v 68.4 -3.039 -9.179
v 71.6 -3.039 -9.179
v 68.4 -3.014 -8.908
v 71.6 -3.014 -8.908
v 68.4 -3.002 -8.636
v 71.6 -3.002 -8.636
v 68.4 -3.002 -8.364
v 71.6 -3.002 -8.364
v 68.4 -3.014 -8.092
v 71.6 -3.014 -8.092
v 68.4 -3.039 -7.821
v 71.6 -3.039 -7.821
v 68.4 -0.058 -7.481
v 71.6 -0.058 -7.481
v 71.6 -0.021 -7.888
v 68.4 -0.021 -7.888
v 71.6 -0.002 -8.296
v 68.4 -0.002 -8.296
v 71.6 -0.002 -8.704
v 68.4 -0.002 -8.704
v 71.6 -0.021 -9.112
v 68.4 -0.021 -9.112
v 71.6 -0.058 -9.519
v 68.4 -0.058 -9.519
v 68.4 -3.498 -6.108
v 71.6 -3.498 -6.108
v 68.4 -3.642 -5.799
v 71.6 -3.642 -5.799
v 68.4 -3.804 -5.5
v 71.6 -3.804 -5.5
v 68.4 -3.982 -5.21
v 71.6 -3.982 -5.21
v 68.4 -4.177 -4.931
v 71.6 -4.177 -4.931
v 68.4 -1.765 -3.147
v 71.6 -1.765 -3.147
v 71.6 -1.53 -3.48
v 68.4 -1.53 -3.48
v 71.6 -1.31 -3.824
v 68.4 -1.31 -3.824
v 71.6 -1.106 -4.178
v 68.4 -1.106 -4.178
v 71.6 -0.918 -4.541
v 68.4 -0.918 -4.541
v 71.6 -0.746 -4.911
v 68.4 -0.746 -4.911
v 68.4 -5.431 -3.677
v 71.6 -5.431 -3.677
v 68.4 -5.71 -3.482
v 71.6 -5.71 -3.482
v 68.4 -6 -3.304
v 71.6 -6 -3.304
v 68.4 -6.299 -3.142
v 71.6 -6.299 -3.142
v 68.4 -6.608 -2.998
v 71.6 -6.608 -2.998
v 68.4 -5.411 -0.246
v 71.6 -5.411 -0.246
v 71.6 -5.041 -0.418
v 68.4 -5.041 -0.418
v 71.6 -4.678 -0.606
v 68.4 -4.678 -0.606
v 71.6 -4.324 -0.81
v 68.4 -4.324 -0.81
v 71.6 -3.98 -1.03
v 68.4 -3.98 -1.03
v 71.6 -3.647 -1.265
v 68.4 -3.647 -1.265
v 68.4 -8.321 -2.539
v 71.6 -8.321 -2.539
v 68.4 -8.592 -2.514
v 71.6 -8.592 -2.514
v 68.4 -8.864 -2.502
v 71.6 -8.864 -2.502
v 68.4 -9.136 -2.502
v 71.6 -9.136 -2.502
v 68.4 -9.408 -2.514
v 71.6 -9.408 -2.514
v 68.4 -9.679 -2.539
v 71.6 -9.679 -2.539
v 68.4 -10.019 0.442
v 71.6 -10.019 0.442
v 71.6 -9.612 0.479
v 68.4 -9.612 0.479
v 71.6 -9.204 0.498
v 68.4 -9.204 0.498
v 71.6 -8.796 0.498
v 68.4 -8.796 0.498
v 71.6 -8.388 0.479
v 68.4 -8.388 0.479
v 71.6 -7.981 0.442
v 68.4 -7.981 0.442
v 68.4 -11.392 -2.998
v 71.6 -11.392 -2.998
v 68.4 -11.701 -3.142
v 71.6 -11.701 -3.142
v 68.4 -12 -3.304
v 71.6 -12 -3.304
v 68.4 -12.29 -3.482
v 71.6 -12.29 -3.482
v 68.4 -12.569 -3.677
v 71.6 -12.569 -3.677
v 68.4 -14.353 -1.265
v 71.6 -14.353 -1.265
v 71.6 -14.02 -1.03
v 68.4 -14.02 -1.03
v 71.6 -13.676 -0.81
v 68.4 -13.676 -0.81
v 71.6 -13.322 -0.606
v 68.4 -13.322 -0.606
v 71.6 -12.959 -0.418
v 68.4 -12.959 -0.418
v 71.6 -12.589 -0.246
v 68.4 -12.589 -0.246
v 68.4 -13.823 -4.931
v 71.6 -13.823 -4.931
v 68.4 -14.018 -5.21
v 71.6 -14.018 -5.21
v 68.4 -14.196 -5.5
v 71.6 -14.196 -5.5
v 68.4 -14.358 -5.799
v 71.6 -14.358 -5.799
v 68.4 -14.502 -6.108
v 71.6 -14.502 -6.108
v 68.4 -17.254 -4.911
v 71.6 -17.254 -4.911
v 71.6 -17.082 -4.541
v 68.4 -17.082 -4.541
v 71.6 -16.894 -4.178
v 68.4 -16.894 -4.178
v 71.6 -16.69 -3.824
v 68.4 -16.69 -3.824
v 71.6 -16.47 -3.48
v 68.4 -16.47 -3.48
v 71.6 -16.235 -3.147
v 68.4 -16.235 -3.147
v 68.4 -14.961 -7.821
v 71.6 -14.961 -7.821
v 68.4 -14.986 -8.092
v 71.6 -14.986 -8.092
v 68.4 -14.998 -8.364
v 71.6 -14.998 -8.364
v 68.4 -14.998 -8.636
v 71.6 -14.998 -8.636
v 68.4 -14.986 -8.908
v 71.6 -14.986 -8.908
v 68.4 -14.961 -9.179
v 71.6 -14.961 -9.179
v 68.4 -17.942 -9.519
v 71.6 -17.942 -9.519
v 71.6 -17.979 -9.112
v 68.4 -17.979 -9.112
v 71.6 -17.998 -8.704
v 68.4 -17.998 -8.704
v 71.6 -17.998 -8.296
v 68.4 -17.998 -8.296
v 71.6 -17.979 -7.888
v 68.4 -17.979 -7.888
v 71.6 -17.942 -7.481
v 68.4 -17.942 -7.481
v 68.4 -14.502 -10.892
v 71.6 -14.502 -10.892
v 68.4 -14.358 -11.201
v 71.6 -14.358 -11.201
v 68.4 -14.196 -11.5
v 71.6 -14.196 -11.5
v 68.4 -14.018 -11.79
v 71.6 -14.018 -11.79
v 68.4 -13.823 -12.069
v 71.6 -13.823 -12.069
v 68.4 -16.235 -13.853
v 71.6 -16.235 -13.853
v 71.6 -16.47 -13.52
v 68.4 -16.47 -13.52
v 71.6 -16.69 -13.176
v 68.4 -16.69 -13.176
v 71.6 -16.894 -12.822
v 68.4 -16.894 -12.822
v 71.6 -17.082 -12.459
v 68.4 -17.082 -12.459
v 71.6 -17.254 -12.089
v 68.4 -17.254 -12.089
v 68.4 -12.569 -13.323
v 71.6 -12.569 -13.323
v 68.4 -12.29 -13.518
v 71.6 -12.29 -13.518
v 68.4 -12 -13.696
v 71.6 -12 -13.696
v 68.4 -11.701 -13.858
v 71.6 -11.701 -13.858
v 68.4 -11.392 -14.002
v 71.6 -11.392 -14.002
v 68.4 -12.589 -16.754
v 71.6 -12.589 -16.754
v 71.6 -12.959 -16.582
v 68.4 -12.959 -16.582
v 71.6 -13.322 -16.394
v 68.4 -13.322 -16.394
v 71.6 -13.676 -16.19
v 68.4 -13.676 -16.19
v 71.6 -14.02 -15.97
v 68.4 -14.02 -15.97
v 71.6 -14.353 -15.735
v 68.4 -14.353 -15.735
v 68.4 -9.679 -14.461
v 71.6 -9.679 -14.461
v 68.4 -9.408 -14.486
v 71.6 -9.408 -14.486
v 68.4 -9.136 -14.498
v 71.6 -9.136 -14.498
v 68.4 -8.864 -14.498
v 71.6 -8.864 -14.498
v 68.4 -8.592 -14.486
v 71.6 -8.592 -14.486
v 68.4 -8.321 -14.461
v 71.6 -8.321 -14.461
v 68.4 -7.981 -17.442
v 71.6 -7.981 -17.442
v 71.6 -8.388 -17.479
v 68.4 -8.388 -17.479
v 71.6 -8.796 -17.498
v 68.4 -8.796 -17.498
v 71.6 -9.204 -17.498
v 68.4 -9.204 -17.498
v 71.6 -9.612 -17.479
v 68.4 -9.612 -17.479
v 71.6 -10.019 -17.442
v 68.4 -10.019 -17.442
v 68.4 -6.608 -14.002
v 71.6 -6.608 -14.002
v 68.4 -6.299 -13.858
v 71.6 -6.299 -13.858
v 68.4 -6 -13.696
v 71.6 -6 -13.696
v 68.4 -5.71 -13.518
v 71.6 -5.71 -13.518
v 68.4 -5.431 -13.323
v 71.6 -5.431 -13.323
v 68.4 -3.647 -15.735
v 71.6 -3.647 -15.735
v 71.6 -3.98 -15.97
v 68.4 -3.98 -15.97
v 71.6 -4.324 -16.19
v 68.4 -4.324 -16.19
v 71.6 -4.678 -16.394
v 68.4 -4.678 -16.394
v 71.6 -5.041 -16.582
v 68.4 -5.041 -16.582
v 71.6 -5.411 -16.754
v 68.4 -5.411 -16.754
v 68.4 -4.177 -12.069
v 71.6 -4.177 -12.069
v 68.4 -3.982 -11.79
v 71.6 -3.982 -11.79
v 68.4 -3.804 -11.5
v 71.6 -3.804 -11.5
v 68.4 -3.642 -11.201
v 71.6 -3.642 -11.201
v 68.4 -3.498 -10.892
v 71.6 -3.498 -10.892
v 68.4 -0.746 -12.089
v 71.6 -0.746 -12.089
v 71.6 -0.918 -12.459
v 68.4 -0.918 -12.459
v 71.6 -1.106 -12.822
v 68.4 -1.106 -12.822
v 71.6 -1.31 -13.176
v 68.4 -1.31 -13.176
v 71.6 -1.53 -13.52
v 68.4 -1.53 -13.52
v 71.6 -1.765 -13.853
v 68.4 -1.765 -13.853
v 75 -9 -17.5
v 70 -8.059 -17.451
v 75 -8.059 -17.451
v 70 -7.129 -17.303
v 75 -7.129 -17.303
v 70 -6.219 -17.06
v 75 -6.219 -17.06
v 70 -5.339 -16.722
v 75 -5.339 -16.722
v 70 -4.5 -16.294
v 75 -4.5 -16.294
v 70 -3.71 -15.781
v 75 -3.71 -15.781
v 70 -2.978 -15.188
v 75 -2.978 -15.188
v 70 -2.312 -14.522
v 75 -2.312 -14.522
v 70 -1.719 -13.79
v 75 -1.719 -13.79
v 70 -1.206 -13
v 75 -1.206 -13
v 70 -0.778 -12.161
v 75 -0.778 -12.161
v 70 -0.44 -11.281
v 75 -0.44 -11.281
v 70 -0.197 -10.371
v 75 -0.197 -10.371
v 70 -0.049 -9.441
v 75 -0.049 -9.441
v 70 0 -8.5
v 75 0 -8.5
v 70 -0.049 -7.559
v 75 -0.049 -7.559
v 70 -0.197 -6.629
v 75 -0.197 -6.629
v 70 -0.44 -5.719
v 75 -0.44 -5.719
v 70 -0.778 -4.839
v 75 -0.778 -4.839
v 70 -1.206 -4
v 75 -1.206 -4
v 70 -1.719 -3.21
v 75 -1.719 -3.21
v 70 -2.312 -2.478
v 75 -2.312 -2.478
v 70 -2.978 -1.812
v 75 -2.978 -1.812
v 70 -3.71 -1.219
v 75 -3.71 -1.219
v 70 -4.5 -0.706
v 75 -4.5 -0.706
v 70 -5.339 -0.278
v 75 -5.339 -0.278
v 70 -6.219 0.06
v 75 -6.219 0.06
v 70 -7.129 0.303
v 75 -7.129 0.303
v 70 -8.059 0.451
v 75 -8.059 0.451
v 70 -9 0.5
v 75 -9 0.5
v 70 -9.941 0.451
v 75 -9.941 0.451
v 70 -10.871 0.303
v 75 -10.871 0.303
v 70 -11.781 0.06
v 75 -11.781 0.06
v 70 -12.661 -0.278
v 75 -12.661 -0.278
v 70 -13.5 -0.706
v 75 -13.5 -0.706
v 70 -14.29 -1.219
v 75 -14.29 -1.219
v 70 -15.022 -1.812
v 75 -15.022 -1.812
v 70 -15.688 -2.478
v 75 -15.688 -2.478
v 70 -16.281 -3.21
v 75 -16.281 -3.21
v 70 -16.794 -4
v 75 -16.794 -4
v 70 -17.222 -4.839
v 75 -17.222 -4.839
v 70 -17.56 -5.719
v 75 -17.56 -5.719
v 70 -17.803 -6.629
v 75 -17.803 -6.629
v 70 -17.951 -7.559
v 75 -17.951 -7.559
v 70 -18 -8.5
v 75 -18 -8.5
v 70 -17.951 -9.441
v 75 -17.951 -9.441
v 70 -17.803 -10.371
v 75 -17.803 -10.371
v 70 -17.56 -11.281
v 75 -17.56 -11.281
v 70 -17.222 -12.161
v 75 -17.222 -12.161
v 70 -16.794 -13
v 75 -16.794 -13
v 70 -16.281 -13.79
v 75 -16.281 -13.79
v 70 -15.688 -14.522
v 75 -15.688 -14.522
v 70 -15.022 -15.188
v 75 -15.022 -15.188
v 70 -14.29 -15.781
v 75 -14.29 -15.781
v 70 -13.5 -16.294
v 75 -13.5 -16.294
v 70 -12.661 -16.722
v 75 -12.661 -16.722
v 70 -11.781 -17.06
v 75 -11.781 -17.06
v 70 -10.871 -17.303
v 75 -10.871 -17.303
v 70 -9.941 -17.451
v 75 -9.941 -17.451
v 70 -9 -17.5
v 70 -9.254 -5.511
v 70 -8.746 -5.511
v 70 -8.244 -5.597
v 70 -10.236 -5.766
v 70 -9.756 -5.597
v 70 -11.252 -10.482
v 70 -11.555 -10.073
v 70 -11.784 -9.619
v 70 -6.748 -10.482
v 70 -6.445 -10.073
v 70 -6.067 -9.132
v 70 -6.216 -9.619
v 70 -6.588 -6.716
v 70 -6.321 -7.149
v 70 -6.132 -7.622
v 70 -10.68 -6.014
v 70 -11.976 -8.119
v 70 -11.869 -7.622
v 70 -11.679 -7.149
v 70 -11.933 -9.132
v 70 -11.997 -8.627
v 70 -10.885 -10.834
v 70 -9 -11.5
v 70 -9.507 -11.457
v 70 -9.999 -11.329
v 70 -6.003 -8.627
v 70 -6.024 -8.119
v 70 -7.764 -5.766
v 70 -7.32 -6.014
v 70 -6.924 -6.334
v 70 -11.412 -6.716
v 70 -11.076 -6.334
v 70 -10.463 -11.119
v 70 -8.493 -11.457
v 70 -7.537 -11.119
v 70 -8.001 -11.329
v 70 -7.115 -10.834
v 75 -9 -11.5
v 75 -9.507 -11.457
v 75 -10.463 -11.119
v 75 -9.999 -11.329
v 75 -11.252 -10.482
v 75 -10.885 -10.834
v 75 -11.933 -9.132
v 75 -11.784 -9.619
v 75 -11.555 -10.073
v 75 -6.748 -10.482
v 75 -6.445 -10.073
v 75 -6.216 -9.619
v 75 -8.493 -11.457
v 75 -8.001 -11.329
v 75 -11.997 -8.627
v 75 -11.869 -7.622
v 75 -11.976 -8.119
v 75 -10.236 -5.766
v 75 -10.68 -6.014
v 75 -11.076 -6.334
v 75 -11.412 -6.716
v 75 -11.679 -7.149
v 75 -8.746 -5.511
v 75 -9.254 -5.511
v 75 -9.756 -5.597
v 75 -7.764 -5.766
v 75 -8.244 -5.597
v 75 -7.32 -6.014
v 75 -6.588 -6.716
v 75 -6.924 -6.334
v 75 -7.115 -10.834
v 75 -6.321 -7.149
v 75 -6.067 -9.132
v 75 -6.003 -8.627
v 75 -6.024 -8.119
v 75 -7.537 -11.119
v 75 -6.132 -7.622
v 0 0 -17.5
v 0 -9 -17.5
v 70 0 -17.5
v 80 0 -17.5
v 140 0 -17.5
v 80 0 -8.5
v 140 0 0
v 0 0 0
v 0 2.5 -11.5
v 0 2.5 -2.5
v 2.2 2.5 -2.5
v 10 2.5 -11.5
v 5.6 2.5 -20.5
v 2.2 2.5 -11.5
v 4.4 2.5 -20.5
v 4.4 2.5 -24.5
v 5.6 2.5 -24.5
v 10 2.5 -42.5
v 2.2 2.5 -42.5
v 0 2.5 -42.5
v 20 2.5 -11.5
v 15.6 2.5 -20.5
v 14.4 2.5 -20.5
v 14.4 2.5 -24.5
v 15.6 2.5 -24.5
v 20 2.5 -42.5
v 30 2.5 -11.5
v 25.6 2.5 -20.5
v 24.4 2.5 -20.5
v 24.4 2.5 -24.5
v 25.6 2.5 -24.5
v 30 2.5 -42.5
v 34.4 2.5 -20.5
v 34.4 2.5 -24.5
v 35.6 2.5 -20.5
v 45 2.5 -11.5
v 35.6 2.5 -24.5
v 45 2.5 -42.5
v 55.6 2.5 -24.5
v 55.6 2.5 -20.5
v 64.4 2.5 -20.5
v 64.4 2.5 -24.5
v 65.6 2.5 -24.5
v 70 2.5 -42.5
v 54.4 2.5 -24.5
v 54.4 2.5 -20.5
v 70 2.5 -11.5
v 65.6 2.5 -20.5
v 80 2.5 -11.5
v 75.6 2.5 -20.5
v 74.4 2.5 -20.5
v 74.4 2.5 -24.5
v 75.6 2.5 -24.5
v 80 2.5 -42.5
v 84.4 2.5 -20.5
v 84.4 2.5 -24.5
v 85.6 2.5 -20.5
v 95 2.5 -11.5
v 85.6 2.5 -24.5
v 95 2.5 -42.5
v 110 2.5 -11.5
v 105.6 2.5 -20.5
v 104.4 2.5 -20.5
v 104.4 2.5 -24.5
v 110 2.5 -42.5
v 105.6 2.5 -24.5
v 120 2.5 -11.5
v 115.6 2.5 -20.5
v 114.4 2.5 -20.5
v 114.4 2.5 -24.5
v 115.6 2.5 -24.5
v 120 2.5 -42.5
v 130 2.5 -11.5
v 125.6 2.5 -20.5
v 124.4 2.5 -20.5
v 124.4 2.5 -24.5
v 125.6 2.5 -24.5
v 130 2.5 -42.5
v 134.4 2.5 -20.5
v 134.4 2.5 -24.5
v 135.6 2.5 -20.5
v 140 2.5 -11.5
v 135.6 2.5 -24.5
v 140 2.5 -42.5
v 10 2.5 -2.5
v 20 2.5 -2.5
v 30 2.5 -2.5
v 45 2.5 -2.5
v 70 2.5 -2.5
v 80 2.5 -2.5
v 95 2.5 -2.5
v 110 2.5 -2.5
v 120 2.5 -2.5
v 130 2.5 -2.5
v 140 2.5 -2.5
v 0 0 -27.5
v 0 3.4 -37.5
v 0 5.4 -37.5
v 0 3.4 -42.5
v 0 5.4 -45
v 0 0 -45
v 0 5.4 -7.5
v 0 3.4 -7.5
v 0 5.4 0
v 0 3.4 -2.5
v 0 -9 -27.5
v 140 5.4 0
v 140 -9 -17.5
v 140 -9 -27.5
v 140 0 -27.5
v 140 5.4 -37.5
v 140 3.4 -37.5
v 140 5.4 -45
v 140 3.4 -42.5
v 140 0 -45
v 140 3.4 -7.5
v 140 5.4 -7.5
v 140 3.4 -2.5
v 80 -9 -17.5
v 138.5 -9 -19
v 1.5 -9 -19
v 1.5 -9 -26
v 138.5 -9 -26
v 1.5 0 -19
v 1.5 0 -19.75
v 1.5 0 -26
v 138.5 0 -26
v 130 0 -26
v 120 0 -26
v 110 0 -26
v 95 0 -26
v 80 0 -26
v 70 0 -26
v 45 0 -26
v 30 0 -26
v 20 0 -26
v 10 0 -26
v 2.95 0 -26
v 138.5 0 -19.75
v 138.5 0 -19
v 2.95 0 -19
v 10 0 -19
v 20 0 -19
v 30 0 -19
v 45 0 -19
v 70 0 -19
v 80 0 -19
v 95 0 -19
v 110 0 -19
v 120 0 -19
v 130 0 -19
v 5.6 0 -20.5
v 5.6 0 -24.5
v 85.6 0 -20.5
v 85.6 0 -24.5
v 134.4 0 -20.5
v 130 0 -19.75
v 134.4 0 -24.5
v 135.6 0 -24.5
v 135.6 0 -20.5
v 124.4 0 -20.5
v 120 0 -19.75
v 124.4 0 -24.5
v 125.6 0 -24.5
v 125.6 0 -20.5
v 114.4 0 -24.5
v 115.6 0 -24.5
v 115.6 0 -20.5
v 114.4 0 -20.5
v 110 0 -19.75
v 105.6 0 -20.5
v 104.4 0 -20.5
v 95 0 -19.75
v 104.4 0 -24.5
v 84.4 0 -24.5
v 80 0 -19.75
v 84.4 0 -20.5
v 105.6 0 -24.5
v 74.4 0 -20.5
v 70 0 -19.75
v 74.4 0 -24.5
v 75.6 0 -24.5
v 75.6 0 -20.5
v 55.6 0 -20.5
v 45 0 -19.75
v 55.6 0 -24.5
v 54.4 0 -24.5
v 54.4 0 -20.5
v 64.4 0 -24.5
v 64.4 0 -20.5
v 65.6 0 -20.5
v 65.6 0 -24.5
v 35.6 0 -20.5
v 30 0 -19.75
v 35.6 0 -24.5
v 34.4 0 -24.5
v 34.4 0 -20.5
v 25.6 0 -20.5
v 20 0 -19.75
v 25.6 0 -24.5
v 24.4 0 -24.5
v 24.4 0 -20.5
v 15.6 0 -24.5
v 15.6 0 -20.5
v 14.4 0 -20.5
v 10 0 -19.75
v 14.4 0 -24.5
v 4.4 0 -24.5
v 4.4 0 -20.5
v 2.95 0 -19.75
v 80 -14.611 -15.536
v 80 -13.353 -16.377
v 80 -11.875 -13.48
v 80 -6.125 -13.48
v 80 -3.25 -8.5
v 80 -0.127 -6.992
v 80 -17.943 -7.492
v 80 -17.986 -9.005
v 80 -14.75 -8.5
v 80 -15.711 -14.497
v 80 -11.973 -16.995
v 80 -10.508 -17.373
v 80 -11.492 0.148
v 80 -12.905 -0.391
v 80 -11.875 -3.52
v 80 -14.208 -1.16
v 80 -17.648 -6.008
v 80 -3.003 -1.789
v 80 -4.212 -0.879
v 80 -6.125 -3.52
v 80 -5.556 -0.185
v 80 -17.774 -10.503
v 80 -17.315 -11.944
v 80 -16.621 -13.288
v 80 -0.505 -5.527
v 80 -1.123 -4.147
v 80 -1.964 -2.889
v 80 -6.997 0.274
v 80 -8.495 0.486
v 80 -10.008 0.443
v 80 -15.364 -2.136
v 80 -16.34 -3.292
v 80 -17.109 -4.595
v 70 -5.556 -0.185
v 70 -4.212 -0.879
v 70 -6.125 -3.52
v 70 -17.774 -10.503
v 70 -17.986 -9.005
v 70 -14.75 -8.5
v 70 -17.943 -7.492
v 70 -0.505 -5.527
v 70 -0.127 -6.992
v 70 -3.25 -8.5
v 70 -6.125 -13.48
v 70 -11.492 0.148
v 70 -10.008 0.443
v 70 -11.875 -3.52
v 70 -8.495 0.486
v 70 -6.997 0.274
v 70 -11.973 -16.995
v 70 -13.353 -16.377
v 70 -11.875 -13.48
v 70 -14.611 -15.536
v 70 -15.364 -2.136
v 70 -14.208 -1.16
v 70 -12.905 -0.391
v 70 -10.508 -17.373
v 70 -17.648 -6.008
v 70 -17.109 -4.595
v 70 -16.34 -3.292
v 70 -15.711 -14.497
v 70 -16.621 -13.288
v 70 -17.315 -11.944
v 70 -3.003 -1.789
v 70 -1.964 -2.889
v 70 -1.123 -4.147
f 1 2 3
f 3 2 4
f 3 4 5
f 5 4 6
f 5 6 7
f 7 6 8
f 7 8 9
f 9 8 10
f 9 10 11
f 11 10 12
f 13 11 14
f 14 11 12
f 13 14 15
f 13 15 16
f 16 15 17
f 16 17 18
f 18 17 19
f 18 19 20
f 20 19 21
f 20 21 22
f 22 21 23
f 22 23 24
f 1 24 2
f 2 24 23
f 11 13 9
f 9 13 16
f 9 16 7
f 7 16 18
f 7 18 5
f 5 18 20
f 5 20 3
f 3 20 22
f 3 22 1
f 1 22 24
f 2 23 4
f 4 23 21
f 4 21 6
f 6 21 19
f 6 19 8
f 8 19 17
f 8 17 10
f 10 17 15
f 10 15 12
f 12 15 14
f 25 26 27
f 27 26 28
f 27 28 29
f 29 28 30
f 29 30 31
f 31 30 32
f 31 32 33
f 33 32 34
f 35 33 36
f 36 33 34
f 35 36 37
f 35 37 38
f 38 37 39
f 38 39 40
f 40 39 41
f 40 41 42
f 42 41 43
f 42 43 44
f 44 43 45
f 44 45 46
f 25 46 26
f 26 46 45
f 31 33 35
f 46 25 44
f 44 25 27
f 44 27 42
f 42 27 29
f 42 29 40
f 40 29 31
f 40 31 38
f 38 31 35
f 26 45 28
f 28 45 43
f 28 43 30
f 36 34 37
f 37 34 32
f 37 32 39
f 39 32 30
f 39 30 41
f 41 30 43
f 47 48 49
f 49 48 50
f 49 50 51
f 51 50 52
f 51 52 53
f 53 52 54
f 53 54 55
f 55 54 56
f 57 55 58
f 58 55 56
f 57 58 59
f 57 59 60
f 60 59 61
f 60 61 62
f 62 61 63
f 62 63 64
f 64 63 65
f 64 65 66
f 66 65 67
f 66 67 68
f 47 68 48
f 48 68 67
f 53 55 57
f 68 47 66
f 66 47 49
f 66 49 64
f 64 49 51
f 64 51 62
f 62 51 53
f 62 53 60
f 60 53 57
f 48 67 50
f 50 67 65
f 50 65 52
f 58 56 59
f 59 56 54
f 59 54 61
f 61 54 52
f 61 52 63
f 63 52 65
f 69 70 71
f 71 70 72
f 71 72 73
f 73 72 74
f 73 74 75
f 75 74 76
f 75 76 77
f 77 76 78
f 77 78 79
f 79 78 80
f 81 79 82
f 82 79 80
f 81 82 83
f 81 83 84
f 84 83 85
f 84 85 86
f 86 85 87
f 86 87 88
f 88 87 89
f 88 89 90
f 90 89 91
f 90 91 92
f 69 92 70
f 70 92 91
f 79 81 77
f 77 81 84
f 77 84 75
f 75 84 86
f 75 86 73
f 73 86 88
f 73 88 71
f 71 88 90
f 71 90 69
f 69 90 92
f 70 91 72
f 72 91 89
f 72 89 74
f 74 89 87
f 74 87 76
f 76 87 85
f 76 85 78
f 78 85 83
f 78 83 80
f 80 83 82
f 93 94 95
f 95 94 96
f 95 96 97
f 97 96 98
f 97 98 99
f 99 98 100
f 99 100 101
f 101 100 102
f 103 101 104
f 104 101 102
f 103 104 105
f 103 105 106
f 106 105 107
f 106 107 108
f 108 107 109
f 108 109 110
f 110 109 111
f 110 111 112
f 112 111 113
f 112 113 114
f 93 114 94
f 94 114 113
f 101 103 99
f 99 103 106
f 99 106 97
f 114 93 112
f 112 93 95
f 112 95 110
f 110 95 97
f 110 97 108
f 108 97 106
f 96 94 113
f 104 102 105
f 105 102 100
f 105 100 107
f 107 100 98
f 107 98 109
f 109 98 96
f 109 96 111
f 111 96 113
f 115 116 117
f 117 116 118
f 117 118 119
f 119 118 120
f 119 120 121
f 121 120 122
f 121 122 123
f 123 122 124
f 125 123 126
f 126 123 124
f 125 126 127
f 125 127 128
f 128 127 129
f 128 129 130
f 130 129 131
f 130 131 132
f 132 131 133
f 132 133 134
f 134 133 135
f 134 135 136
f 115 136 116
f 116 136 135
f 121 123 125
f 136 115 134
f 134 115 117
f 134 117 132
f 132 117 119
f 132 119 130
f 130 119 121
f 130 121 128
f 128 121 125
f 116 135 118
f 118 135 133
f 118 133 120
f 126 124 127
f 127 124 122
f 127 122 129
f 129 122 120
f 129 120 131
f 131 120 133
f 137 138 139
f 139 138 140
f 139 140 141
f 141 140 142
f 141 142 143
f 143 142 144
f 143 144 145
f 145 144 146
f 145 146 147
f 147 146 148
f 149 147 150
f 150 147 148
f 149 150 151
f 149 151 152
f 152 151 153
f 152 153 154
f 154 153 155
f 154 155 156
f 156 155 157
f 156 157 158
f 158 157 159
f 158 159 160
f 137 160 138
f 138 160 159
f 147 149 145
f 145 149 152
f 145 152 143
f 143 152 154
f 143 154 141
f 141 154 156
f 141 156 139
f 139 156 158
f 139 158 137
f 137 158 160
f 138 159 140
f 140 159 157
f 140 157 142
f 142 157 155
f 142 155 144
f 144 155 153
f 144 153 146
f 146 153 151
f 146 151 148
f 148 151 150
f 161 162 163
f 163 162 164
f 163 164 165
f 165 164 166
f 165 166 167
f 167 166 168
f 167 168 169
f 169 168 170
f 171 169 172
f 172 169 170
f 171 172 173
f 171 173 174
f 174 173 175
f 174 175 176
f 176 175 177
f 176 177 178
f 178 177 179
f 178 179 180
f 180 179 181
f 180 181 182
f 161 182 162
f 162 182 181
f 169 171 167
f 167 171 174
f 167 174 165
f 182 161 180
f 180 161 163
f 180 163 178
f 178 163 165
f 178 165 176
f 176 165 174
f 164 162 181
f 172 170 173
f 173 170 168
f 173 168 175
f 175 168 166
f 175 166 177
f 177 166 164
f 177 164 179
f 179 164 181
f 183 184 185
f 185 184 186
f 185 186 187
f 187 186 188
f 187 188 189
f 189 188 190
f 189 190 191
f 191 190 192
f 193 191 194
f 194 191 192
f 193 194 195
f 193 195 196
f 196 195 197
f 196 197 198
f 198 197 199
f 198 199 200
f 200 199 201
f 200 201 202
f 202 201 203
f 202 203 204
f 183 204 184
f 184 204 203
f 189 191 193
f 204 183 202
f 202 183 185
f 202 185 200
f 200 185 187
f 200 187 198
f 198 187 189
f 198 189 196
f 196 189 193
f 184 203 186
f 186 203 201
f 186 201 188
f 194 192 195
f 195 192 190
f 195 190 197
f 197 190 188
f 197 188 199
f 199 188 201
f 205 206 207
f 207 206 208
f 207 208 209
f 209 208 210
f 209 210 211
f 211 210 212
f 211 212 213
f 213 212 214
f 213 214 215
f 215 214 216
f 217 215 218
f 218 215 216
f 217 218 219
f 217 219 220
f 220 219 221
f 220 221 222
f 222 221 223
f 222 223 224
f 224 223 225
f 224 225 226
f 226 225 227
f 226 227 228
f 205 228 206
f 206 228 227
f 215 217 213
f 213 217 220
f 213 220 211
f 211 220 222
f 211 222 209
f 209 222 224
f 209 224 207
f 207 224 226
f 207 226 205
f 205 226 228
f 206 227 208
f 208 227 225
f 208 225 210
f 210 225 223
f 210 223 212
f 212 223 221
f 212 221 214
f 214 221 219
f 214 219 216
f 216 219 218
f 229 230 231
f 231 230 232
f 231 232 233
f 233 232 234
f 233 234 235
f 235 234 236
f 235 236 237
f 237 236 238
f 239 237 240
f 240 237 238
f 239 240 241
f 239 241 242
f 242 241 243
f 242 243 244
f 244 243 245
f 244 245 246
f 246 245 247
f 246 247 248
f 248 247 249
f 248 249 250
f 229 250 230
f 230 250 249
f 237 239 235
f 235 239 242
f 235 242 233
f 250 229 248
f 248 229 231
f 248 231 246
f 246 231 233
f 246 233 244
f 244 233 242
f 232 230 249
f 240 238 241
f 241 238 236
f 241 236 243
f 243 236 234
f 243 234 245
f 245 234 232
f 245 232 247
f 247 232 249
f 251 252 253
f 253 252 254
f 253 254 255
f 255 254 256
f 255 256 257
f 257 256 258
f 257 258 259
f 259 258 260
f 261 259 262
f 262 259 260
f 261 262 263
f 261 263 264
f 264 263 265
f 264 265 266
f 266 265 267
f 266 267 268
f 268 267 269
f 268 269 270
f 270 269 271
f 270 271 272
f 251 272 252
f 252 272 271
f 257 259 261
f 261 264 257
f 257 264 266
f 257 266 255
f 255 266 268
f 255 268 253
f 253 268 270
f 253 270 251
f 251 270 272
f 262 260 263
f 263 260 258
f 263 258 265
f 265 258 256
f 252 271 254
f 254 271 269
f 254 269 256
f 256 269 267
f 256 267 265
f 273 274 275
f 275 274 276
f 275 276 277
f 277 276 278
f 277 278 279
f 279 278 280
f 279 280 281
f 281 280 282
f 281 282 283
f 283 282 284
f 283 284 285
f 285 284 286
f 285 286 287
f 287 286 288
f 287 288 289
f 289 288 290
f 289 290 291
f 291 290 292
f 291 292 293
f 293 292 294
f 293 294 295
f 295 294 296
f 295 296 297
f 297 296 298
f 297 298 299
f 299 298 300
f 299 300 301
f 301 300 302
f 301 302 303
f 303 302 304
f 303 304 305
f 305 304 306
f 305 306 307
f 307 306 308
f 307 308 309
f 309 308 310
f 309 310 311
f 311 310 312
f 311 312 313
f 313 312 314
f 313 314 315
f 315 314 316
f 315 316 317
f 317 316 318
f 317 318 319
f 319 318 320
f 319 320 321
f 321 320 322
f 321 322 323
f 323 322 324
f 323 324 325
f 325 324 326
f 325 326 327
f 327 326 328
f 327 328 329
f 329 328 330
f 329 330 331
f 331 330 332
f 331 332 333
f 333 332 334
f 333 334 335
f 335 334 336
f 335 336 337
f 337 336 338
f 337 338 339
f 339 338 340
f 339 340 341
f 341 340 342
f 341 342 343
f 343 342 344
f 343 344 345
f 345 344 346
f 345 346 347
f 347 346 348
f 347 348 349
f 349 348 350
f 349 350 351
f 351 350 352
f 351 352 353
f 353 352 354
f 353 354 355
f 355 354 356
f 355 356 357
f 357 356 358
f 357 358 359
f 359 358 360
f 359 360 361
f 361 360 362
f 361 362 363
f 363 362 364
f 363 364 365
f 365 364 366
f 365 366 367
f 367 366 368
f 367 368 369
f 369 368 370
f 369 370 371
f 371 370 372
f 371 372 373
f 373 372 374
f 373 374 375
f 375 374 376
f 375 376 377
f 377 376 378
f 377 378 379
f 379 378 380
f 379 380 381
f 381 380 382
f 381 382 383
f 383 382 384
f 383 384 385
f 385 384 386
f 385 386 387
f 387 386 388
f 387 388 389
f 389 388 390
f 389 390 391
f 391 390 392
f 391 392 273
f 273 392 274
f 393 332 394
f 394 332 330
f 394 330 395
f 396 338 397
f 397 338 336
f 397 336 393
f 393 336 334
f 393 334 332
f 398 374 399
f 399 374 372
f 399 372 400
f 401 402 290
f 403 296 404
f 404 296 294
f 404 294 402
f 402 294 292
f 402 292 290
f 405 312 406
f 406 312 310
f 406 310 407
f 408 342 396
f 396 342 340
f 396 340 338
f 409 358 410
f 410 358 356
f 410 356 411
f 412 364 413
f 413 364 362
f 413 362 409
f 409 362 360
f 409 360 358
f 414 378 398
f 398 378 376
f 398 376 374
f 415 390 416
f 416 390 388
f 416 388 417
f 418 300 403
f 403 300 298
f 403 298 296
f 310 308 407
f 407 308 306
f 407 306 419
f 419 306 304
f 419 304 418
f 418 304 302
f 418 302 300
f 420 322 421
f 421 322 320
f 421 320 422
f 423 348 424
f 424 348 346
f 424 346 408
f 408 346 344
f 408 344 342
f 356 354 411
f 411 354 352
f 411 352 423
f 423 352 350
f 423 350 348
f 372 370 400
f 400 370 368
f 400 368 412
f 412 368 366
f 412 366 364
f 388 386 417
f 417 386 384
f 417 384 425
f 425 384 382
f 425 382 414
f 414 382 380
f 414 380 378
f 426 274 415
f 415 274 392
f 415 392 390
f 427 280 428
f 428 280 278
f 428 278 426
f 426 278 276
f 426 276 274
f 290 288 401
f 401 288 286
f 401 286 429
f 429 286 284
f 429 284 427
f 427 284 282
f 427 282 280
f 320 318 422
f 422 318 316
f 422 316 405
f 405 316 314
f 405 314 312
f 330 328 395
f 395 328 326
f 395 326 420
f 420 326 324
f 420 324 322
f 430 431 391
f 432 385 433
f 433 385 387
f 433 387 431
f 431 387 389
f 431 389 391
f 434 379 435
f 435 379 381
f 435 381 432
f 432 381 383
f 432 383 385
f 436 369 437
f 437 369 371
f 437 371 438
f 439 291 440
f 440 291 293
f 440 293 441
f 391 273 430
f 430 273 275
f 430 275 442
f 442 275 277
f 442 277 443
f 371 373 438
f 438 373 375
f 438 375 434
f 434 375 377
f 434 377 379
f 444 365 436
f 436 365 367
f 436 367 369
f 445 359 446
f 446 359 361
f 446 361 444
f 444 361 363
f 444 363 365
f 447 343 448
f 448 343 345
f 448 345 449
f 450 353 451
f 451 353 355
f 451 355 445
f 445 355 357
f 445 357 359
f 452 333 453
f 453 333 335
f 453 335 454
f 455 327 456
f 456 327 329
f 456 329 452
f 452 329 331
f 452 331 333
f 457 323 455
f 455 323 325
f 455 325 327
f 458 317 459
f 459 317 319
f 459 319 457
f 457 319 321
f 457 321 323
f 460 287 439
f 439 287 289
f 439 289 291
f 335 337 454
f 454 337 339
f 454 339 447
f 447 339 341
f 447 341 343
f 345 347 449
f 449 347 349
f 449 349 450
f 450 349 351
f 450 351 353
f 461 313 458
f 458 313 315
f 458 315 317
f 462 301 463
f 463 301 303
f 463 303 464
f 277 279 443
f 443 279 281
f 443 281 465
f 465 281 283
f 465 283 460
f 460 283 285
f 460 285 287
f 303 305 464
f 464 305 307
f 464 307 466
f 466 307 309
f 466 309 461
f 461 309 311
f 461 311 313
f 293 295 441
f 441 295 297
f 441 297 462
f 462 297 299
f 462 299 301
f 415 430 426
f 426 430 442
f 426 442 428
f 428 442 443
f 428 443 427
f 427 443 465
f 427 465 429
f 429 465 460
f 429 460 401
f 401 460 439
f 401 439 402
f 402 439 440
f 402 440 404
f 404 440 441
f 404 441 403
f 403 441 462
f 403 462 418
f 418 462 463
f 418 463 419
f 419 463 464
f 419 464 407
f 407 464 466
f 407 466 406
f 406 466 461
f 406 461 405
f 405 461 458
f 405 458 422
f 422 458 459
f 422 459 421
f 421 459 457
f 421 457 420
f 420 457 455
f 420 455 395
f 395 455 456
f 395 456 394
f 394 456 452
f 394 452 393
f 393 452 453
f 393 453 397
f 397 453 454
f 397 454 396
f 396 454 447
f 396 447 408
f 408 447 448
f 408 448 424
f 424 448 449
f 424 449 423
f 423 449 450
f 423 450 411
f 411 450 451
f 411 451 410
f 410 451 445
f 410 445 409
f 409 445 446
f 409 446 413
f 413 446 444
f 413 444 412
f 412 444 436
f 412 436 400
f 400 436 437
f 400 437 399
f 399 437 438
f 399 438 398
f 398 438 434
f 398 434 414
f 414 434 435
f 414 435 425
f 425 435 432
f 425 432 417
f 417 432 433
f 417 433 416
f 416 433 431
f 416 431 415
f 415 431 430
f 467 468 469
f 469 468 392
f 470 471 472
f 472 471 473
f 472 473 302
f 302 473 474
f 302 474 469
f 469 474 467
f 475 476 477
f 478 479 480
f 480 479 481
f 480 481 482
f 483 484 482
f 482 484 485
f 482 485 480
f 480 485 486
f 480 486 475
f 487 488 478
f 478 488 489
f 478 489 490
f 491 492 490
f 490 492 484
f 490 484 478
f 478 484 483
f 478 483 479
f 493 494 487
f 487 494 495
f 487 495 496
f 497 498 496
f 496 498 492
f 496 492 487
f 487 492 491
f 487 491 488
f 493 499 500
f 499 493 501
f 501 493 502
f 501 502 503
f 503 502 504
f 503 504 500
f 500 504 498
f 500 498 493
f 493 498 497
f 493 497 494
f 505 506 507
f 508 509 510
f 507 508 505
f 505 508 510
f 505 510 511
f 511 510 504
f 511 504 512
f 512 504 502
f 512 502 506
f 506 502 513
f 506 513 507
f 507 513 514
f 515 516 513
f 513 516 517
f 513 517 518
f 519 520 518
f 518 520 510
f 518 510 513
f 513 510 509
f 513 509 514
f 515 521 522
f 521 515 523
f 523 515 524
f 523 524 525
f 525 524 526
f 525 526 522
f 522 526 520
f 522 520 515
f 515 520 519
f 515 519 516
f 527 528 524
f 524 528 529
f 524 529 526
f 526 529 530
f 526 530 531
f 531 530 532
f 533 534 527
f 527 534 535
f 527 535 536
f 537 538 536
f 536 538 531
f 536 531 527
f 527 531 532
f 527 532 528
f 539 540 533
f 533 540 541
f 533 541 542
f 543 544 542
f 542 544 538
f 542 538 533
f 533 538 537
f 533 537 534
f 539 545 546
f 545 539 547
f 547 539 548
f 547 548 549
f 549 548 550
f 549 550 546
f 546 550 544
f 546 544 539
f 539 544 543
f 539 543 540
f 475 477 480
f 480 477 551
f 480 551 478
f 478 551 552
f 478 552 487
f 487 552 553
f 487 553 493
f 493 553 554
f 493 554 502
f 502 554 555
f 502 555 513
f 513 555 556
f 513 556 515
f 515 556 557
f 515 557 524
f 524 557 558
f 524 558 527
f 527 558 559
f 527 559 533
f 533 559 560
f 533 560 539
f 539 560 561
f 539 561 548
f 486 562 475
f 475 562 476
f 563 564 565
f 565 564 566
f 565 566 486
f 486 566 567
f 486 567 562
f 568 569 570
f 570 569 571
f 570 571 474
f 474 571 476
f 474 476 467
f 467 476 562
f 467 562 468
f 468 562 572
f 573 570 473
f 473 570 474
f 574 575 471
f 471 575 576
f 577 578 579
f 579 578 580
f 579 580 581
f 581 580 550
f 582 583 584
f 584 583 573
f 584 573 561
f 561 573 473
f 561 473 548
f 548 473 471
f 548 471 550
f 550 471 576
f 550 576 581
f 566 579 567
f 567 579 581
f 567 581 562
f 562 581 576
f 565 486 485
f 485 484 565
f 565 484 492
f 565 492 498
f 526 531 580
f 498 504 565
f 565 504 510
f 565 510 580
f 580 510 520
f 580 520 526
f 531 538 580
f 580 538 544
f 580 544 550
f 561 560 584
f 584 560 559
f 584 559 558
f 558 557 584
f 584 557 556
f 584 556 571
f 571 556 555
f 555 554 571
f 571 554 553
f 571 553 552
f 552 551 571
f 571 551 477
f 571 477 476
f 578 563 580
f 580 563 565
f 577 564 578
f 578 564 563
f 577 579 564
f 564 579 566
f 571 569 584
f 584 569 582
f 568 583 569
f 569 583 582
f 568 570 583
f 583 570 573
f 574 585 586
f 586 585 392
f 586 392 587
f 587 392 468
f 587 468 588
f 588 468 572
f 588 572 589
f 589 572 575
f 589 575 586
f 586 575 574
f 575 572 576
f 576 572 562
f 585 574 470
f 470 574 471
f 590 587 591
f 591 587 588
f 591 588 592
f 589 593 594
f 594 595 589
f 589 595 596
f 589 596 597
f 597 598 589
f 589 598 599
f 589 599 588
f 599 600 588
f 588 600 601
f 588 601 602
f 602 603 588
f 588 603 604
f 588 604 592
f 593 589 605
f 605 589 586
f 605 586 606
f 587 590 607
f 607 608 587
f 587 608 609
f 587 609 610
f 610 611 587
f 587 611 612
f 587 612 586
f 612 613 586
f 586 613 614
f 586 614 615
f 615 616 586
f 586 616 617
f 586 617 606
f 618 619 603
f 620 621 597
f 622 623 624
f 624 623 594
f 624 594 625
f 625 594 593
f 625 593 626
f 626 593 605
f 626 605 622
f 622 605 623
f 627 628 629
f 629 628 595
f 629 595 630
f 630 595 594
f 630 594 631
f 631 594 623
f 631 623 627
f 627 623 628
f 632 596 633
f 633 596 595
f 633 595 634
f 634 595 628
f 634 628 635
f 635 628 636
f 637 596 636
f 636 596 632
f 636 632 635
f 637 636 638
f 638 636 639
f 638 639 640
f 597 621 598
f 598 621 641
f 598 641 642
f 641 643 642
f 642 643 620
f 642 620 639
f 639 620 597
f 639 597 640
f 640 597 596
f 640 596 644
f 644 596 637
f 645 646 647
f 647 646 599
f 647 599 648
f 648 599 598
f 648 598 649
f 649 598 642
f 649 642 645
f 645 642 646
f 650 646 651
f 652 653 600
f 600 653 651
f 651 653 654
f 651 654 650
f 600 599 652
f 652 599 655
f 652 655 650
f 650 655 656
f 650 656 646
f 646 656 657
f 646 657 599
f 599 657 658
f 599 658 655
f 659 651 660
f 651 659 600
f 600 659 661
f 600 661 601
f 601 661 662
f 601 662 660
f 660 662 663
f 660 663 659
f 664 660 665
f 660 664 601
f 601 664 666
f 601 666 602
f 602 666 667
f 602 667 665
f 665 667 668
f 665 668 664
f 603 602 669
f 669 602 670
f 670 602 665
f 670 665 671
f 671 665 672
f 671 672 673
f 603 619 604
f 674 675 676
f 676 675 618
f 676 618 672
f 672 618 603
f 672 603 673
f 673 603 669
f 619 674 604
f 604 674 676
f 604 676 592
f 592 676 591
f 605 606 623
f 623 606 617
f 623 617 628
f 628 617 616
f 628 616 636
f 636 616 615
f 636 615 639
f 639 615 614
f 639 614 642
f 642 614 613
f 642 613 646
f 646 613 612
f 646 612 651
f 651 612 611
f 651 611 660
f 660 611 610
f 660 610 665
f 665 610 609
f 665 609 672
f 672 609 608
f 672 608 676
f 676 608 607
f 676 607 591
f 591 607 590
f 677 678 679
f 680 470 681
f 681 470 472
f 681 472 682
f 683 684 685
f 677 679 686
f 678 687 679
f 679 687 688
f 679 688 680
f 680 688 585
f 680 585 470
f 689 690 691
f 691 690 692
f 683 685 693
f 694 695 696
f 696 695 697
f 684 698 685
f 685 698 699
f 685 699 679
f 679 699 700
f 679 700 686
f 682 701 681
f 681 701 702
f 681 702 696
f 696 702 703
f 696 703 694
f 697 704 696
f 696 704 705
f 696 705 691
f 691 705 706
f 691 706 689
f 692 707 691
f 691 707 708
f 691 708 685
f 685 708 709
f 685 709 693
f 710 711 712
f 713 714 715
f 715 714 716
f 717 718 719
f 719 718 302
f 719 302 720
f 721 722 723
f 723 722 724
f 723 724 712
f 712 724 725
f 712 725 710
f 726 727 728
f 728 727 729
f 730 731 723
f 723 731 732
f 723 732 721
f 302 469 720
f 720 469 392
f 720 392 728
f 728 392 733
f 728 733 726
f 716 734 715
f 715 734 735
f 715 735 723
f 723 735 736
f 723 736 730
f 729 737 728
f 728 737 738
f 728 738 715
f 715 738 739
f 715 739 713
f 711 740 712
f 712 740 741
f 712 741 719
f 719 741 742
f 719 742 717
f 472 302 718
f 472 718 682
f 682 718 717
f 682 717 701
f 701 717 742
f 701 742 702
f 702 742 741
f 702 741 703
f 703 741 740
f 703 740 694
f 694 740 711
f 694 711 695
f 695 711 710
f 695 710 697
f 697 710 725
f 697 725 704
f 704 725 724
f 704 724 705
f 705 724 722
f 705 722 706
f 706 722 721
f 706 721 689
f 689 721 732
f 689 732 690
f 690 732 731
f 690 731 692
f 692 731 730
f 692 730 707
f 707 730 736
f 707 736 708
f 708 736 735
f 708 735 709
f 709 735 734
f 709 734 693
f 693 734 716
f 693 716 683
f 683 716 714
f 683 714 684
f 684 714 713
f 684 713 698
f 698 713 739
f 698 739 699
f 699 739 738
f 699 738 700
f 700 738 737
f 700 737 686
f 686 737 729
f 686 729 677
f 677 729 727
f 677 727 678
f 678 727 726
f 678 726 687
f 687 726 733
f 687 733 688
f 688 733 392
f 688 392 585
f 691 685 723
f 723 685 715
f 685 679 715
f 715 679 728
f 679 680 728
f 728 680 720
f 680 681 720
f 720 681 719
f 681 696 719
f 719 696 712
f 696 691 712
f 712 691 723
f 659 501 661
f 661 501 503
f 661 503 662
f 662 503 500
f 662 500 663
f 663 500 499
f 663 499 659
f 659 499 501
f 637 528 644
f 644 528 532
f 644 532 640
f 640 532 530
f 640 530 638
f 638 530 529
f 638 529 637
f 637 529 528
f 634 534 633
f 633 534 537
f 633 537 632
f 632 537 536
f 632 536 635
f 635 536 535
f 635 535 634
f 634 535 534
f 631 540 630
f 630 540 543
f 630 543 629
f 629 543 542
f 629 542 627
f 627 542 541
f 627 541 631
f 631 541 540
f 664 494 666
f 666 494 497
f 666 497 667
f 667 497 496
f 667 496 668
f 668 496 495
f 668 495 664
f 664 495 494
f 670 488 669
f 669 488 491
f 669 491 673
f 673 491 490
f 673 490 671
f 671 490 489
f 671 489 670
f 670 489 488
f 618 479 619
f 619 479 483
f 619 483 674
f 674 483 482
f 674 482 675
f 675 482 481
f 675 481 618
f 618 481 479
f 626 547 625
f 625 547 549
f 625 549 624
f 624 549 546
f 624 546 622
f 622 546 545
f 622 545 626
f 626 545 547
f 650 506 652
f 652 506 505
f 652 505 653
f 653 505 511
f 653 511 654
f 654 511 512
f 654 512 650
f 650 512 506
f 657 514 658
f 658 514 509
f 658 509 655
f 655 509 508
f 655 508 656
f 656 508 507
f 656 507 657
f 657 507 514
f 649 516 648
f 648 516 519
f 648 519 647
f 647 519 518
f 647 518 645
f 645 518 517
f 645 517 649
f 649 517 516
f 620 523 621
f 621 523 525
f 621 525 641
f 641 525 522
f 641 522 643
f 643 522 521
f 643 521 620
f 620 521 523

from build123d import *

# Parameters (mm, degrees)
CROQUIS1_W                  = 140
CROQUIS1_H                  = 45
SALIENTE_EXTRUIR1_DEPTH     = 2.5
CROQUIS2_W                  = 140
CROQUIS2_H                  = 2.5
SALIENTE_EXTRUIR2_DEPTH     = 0.9
CROQUIS3_W                  = 140
CROQUIS3_H                  = 7.5
SALIENTE_EXTRUIR3_DEPTH     = 2
CROQUIS4_W                  = 140
CROQUIS4_H                  = 10
CROQUIS4_W_2                = 137
CROQUIS4_H_2                = 7
SALIENTE_EXTRUIR4_DEPTH     = 9
SALIENTE_EXTRUIR5_DEPTH     = 10
SALIENTE_EXTRUIR20_DEPTH    = 1.6
SALIENTE_EXTRUIR20_2_DEPTH  = 1.6
SALIENTE_EXTRUIR20_3_DEPTH  = 1.6
SALIENTE_EXTRUIR20_4_DEPTH  = 1.6
SALIENTE_EXTRUIR20_5_DEPTH  = 1.6
SALIENTE_EXTRUIR20_6_DEPTH  = 1.6
SALIENTE_EXTRUIR20_7_DEPTH  = 1.6
SALIENTE_EXTRUIR20_8_DEPTH  = 1.6
SALIENTE_EXTRUIR20_9_DEPTH  = 1.6
SALIENTE_EXTRUIR20_10_DEPTH = 1.6
SALIENTE_EXTRUIR20_11_DEPTH = 1.6
SALIENTE_EXTRUIR20_12_DEPTH = 1.6
CROQUIS9_R                  = 9
CROQUIS9_R_2                = 3
SALIENTE_EXTRUIR24_DEPTH    = 5
CROQUIS10_W                 = 1.2
CROQUIS10_H                 = 4
CORTAR_EXTRUIR1_DEPTH       = 10
CROQUIS12_W                 = 1.2
CROQUIS12_H                 = 4
CORTAR_EXTRUIR2_DEPTH       = 10


with BuildPart() as part:
    # Croquis1 → Saliente-Extruir1 (new body)
    with BuildSketch(Plane(origin=(0, 0, 0), x_dir=(1, 0, 0), z_dir=(0, 1, 0))):
        with Locations((70, 22.5)):
            Rectangle(CROQUIS1_W, CROQUIS1_H)
    extrude(amount=SALIENTE_EXTRUIR1_DEPTH)

    # Croquis2 → Saliente-Extruir2 (add)
    with BuildSketch(Plane(origin=(0, 2.5, 0), x_dir=(1, 0, 0), z_dir=(0, 1, 0))):
        with Locations((70, 43.75)):
            Rectangle(CROQUIS2_W, CROQUIS2_H)
        with Locations((70, 1.25)):
            Rectangle(CROQUIS2_W, CROQUIS2_H)
    extrude(amount=SALIENTE_EXTRUIR2_DEPTH)

    # Croquis3 → Saliente-Extruir3 (add)
    with BuildSketch(Plane(origin=(0, 3.4, 0), x_dir=(1, 0, 0), z_dir=(0, 1, 0))):
        with Locations((70, 41.25)):
            Rectangle(CROQUIS3_W, CROQUIS3_H)
        with Locations((70, 3.75)):
            Rectangle(CROQUIS3_W, CROQUIS3_H)
    extrude(amount=SALIENTE_EXTRUIR3_DEPTH)

    # Croquis4 → Saliente-Extruir4 (add)
    with BuildSketch(Plane.XZ):
        with Locations((70, -22.5)):
            Rectangle(CROQUIS4_W, CROQUIS4_H)
        with Locations((70, -22.5)):
            Rectangle(CROQUIS4_W_2, CROQUIS4_H_2, mode=Mode.SUBTRACT)
    extrude(amount=SALIENTE_EXTRUIR4_DEPTH)

    # Croquis6 → Saliente-Extruir5 (add)
    with BuildSketch(Plane(origin=(70, 0, 0), x_dir=(0, 0, -1), z_dir=(1, 0, 0))):
        with BuildLine():
            Line((17.5, -9), (18.5, -9))
            Line((18.5, -9), (18.5, 1))
            Line((18.5, 1), (8.5, 1))
            Line((8.5, 1), (8.5, 0))
            ThreePointArc((8.5, 0), (2.136038969, -15.363961031), (17.5, -9))
        make_face()
        Polygon((8.5, -14.75), (13.479646072, -11.875), (13.479646072, -6.125), (8.5, -3.25), (3.520353928, -6.125), (3.520353928, -11.875), align=None, mode=Mode.SUBTRACT)
    extrude(amount=SALIENTE_EXTRUIR5_DEPTH)

    # Croquis10 → Cortar-Extruir1 (cut)
    with BuildSketch(Plane.XZ):
        with Locations((35, -22.5)):
            Rectangle(CROQUIS10_W, CROQUIS10_H)
        with Locations((25, -22.5)):
            Rectangle(CROQUIS10_W, CROQUIS10_H)
        with Locations((15, -22.5)):
            Rectangle(CROQUIS10_W, CROQUIS10_H)
        with Locations((5, -22.5)):
            Rectangle(CROQUIS10_W, CROQUIS10_H)
        with Locations((135, -22.5)):
            Rectangle(CROQUIS10_W, CROQUIS10_H)
        with Locations((125, -22.5)):
            Rectangle(CROQUIS10_W, CROQUIS10_H)
        with Locations((115, -22.5)):
            Rectangle(CROQUIS10_W, CROQUIS10_H)
        with Locations((105, -22.5)):
            Rectangle(CROQUIS10_W, CROQUIS10_H)
    extrude(amount=-CORTAR_EXTRUIR1_DEPTH, mode=Mode.SUBTRACT)

    # Croquis12 → Cortar-Extruir2 (cut)
    with BuildSketch(Plane.XZ):
        with Locations((85, -22.5)):
            Rectangle(CROQUIS12_W, CROQUIS12_H)
        with Locations((75, -22.5)):
            Rectangle(CROQUIS12_W, CROQUIS12_H)
        with Locations((65, -22.5)):
            Rectangle(CROQUIS12_W, CROQUIS12_H)
        with Locations((55, -22.5)):
            Rectangle(CROQUIS12_W, CROQUIS12_H)
    extrude(amount=-CORTAR_EXTRUIR2_DEPTH, mode=Mode.SUBTRACT)


with BuildPart() as body_2:
    # Croquis7 → Saliente-Extruir20 (new, symmetric)
    with BuildSketch(Plane.ZY.offset(-70)):
        with BuildLine():
            Line((-9.179219283, -3.038568866), (-9.518828924, -0.057853299))
            ThreePointArc((-9.518828924, -0.057853299), (-8.5, 0), (-7.481171076, -0.057853299))
            Line((-7.481171076, -0.057853299), (-7.820780717, -3.038568866))
            ThreePointArc((-7.820780717, -3.038568866), (-8.5, -3), (-9.179219283, -3.038568866))
        make_face()
    extrude(amount=SALIENTE_EXTRUIR20_DEPTH, both=True)


with BuildPart() as body_3:
    # Croquis7 → Saliente-Extruir20 2 (new, symmetric)
    with BuildSketch(Plane.ZY.offset(-70)):
        with BuildLine():
            Line((-4.931063279, -4.176858836), (-3.146594919, -1.765288254))
            ThreePointArc((-3.146594919, -1.765288254), (-4, -1.205771366), (-4.91125838, -0.746459331))
            Line((-4.91125838, -0.746459331), (-6.107505586, -3.497639554))
            ThreePointArc((-6.107505586, -3.497639554), (-5.5, -3.803847577), (-4.931063279, -4.176858836))
        make_face()
    extrude(amount=SALIENTE_EXTRUIR20_2_DEPTH, both=True)


with BuildPart() as body_4:
    # Croquis7 → Saliente-Extruir20 3 (new, symmetric)
    with BuildSketch(Plane.ZY.offset(-70)):
        with BuildLine():
            Line((-2.997639554, -6.607505586), (-0.246459331, -5.41125838))
            ThreePointArc((-0.246459331, -5.41125838), (-0.705771366, -4.5), (-1.265288254, -3.646594919))
            Line((-1.265288254, -3.646594919), (-3.676858836, -5.431063279))
            ThreePointArc((-3.676858836, -5.431063279), (-3.303847577, -6), (-2.997639554, -6.607505586))
        make_face()
    extrude(amount=SALIENTE_EXTRUIR20_3_DEPTH, both=True)


with BuildPart() as body_5:
    # Croquis7 → Saliente-Extruir20 4 (new, symmetric)
    with BuildSketch(Plane.ZY.offset(-70)):
        with BuildLine():
            Line((-2.538568866, -9.679219283), (0.442146701, -10.018828924))
            ThreePointArc((0.442146701, -10.018828924), (0.5, -9), (0.442146701, -7.981171076))
            Line((0.442146701, -7.981171076), (-2.538568866, -8.320780717))
            ThreePointArc((-2.538568866, -8.320780717), (-2.5, -9), (-2.538568866, -9.679219283))
        make_face()
    extrude(amount=SALIENTE_EXTRUIR20_4_DEPTH, both=True)


with BuildPart() as body_6:
    # Croquis7 → Saliente-Extruir20 5 (new, symmetric)
    with BuildSketch(Plane.ZY.offset(-70)):
        with BuildLine():
            Line((-3.676858836, -12.568936721), (-1.265288254, -14.353405081))
            ThreePointArc((-1.265288254, -14.353405081), (-0.705771366, -13.5), (-0.246459331, -12.58874162))
            Line((-0.246459331, -12.58874162), (-2.997639554, -11.392494414))
            ThreePointArc((-2.997639554, -11.392494414), (-3.303847577, -12), (-3.676858836, -12.568936721))
        make_face()
    extrude(amount=SALIENTE_EXTRUIR20_5_DEPTH, both=True)


with BuildPart() as body_7:
    # Croquis7 → Saliente-Extruir20 6 (new, symmetric)
    with BuildSketch(Plane.ZY.offset(-70)):
        with BuildLine():
            Line((-6.107505586, -14.502360446), (-4.91125838, -17.253540669))
            ThreePointArc((-4.91125838, -17.253540669), (-4, -16.794228634), (-3.146594919, -16.234711746))
            Line((-3.146594919, -16.234711746), (-4.931063279, -13.823141164))
            ThreePointArc((-4.931063279, -13.823141164), (-5.5, -14.196152423), (-6.107505586, -14.502360446))
        make_face()
    extrude(amount=SALIENTE_EXTRUIR20_6_DEPTH, both=True)


with BuildPart() as body_8:
    # Croquis7 → Saliente-Extruir20 7 (new, symmetric)
    with BuildSketch(Plane.ZY.offset(-70)):
        with BuildLine():
            Line((-9.179219283, -14.961431134), (-9.518828924, -17.942146701))
            ThreePointArc((-9.518828924, -17.942146701), (-8.5, -18), (-7.481171076, -17.942146701))
            Line((-7.481171076, -17.942146701), (-7.820780717, -14.961431134))
            ThreePointArc((-7.820780717, -14.961431134), (-8.5, -15), (-9.179219283, -14.961431134))
        make_face()
    extrude(amount=SALIENTE_EXTRUIR20_7_DEPTH, both=True)


with BuildPart() as body_9:
    # Croquis7 → Saliente-Extruir20 8 (new, symmetric)
    with BuildSketch(Plane.ZY.offset(-70)):
        with BuildLine():
            Line((-12.068936721, -13.823141164), (-13.853405081, -16.234711746))
            ThreePointArc((-13.853405081, -16.234711746), (-13, -16.794228634), (-12.08874162, -17.253540669))
            Line((-12.08874162, -17.253540669), (-10.892494414, -14.502360446))
            ThreePointArc((-10.892494414, -14.502360446), (-11.5, -14.196152423), (-12.068936721, -13.823141164))
        make_face()
    extrude(amount=SALIENTE_EXTRUIR20_8_DEPTH, both=True)


with BuildPart() as body_10:
    # Croquis7 → Saliente-Extruir20 9 (new, symmetric)
    with BuildSketch(Plane.ZY.offset(-70)):
        with BuildLine():
            Line((-14.002360446, -11.392494414), (-16.753540669, -12.58874162))
            ThreePointArc((-16.753540669, -12.58874162), (-16.294228634, -13.5), (-15.734711746, -14.353405081))
            Line((-15.734711746, -14.353405081), (-13.323141164, -12.568936721))
            ThreePointArc((-13.323141164, -12.568936721), (-13.696152423, -12), (-14.002360446, -11.392494414))
        make_face()
    extrude(amount=SALIENTE_EXTRUIR20_9_DEPTH, both=True)


with BuildPart() as body_11:
    # Croquis7 → Saliente-Extruir20 10 (new, symmetric)
    with BuildSketch(Plane.ZY.offset(-70)):
        with BuildLine():
            Line((-14.461431134, -8.320780717), (-17.442146701, -7.981171076))
            ThreePointArc((-17.442146701, -7.981171076), (-17.5, -9), (-17.442146701, -10.018828924))
            Line((-17.442146701, -10.018828924), (-14.461431134, -9.679219283))
            ThreePointArc((-14.461431134, -9.679219283), (-14.5, -9), (-14.461431134, -8.320780717))
        make_face()
    extrude(amount=SALIENTE_EXTRUIR20_10_DEPTH, both=True)


with BuildPart() as body_12:
    # Croquis7 → Saliente-Extruir20 11 (new, symmetric)
    with BuildSketch(Plane.ZY.offset(-70)):
        with BuildLine():
            Line((-13.323141164, -5.431063279), (-15.734711746, -3.646594919))
            ThreePointArc((-15.734711746, -3.646594919), (-16.294228634, -4.5), (-16.753540669, -5.41125838))
            Line((-16.753540669, -5.41125838), (-14.002360446, -6.607505586))
            ThreePointArc((-14.002360446, -6.607505586), (-13.696152423, -6), (-13.323141164, -5.431063279))
        make_face()
    extrude(amount=SALIENTE_EXTRUIR20_11_DEPTH, both=True)


with BuildPart() as body_13:
    # Croquis7 → Saliente-Extruir20 12 (new, symmetric)
    with BuildSketch(Plane.ZY.offset(-70)):
        with BuildLine():
            Line((-10.892494414, -3.497639554), (-12.08874162, -0.746459331))
            ThreePointArc((-12.08874162, -0.746459331), (-13, -1.205771366), (-13.853405081, -1.765288254))
            Line((-13.853405081, -1.765288254), (-12.068936721, -4.176858836))
            ThreePointArc((-12.068936721, -4.176858836), (-11.5, -3.803847577), (-10.892494414, -3.497639554))
        make_face()
    extrude(amount=SALIENTE_EXTRUIR20_12_DEPTH, both=True)


with BuildPart() as body_14:
    # Croquis9 → Saliente-Extruir24 (new body)
    with BuildSketch(Plane(origin=(75, 0, 0), x_dir=(0, 0, -1), z_dir=(1, 0, 0))):
        with Locations((8.5, -9)):
            Circle(CROQUIS9_R)
        with Locations((8.5, -9)):
            Circle(CROQUIS9_R_2, mode=Mode.SUBTRACT)
    extrude(amount=-SALIENTE_EXTRUIR24_DEPTH)


solid = Compound([part.part, body_2.part, body_3.part, body_4.part, body_5.part, body_6.part, body_7.part, body_8.part, body_9.part, body_10.part, body_11.part, body_12.part, body_13.part, body_14.part])
